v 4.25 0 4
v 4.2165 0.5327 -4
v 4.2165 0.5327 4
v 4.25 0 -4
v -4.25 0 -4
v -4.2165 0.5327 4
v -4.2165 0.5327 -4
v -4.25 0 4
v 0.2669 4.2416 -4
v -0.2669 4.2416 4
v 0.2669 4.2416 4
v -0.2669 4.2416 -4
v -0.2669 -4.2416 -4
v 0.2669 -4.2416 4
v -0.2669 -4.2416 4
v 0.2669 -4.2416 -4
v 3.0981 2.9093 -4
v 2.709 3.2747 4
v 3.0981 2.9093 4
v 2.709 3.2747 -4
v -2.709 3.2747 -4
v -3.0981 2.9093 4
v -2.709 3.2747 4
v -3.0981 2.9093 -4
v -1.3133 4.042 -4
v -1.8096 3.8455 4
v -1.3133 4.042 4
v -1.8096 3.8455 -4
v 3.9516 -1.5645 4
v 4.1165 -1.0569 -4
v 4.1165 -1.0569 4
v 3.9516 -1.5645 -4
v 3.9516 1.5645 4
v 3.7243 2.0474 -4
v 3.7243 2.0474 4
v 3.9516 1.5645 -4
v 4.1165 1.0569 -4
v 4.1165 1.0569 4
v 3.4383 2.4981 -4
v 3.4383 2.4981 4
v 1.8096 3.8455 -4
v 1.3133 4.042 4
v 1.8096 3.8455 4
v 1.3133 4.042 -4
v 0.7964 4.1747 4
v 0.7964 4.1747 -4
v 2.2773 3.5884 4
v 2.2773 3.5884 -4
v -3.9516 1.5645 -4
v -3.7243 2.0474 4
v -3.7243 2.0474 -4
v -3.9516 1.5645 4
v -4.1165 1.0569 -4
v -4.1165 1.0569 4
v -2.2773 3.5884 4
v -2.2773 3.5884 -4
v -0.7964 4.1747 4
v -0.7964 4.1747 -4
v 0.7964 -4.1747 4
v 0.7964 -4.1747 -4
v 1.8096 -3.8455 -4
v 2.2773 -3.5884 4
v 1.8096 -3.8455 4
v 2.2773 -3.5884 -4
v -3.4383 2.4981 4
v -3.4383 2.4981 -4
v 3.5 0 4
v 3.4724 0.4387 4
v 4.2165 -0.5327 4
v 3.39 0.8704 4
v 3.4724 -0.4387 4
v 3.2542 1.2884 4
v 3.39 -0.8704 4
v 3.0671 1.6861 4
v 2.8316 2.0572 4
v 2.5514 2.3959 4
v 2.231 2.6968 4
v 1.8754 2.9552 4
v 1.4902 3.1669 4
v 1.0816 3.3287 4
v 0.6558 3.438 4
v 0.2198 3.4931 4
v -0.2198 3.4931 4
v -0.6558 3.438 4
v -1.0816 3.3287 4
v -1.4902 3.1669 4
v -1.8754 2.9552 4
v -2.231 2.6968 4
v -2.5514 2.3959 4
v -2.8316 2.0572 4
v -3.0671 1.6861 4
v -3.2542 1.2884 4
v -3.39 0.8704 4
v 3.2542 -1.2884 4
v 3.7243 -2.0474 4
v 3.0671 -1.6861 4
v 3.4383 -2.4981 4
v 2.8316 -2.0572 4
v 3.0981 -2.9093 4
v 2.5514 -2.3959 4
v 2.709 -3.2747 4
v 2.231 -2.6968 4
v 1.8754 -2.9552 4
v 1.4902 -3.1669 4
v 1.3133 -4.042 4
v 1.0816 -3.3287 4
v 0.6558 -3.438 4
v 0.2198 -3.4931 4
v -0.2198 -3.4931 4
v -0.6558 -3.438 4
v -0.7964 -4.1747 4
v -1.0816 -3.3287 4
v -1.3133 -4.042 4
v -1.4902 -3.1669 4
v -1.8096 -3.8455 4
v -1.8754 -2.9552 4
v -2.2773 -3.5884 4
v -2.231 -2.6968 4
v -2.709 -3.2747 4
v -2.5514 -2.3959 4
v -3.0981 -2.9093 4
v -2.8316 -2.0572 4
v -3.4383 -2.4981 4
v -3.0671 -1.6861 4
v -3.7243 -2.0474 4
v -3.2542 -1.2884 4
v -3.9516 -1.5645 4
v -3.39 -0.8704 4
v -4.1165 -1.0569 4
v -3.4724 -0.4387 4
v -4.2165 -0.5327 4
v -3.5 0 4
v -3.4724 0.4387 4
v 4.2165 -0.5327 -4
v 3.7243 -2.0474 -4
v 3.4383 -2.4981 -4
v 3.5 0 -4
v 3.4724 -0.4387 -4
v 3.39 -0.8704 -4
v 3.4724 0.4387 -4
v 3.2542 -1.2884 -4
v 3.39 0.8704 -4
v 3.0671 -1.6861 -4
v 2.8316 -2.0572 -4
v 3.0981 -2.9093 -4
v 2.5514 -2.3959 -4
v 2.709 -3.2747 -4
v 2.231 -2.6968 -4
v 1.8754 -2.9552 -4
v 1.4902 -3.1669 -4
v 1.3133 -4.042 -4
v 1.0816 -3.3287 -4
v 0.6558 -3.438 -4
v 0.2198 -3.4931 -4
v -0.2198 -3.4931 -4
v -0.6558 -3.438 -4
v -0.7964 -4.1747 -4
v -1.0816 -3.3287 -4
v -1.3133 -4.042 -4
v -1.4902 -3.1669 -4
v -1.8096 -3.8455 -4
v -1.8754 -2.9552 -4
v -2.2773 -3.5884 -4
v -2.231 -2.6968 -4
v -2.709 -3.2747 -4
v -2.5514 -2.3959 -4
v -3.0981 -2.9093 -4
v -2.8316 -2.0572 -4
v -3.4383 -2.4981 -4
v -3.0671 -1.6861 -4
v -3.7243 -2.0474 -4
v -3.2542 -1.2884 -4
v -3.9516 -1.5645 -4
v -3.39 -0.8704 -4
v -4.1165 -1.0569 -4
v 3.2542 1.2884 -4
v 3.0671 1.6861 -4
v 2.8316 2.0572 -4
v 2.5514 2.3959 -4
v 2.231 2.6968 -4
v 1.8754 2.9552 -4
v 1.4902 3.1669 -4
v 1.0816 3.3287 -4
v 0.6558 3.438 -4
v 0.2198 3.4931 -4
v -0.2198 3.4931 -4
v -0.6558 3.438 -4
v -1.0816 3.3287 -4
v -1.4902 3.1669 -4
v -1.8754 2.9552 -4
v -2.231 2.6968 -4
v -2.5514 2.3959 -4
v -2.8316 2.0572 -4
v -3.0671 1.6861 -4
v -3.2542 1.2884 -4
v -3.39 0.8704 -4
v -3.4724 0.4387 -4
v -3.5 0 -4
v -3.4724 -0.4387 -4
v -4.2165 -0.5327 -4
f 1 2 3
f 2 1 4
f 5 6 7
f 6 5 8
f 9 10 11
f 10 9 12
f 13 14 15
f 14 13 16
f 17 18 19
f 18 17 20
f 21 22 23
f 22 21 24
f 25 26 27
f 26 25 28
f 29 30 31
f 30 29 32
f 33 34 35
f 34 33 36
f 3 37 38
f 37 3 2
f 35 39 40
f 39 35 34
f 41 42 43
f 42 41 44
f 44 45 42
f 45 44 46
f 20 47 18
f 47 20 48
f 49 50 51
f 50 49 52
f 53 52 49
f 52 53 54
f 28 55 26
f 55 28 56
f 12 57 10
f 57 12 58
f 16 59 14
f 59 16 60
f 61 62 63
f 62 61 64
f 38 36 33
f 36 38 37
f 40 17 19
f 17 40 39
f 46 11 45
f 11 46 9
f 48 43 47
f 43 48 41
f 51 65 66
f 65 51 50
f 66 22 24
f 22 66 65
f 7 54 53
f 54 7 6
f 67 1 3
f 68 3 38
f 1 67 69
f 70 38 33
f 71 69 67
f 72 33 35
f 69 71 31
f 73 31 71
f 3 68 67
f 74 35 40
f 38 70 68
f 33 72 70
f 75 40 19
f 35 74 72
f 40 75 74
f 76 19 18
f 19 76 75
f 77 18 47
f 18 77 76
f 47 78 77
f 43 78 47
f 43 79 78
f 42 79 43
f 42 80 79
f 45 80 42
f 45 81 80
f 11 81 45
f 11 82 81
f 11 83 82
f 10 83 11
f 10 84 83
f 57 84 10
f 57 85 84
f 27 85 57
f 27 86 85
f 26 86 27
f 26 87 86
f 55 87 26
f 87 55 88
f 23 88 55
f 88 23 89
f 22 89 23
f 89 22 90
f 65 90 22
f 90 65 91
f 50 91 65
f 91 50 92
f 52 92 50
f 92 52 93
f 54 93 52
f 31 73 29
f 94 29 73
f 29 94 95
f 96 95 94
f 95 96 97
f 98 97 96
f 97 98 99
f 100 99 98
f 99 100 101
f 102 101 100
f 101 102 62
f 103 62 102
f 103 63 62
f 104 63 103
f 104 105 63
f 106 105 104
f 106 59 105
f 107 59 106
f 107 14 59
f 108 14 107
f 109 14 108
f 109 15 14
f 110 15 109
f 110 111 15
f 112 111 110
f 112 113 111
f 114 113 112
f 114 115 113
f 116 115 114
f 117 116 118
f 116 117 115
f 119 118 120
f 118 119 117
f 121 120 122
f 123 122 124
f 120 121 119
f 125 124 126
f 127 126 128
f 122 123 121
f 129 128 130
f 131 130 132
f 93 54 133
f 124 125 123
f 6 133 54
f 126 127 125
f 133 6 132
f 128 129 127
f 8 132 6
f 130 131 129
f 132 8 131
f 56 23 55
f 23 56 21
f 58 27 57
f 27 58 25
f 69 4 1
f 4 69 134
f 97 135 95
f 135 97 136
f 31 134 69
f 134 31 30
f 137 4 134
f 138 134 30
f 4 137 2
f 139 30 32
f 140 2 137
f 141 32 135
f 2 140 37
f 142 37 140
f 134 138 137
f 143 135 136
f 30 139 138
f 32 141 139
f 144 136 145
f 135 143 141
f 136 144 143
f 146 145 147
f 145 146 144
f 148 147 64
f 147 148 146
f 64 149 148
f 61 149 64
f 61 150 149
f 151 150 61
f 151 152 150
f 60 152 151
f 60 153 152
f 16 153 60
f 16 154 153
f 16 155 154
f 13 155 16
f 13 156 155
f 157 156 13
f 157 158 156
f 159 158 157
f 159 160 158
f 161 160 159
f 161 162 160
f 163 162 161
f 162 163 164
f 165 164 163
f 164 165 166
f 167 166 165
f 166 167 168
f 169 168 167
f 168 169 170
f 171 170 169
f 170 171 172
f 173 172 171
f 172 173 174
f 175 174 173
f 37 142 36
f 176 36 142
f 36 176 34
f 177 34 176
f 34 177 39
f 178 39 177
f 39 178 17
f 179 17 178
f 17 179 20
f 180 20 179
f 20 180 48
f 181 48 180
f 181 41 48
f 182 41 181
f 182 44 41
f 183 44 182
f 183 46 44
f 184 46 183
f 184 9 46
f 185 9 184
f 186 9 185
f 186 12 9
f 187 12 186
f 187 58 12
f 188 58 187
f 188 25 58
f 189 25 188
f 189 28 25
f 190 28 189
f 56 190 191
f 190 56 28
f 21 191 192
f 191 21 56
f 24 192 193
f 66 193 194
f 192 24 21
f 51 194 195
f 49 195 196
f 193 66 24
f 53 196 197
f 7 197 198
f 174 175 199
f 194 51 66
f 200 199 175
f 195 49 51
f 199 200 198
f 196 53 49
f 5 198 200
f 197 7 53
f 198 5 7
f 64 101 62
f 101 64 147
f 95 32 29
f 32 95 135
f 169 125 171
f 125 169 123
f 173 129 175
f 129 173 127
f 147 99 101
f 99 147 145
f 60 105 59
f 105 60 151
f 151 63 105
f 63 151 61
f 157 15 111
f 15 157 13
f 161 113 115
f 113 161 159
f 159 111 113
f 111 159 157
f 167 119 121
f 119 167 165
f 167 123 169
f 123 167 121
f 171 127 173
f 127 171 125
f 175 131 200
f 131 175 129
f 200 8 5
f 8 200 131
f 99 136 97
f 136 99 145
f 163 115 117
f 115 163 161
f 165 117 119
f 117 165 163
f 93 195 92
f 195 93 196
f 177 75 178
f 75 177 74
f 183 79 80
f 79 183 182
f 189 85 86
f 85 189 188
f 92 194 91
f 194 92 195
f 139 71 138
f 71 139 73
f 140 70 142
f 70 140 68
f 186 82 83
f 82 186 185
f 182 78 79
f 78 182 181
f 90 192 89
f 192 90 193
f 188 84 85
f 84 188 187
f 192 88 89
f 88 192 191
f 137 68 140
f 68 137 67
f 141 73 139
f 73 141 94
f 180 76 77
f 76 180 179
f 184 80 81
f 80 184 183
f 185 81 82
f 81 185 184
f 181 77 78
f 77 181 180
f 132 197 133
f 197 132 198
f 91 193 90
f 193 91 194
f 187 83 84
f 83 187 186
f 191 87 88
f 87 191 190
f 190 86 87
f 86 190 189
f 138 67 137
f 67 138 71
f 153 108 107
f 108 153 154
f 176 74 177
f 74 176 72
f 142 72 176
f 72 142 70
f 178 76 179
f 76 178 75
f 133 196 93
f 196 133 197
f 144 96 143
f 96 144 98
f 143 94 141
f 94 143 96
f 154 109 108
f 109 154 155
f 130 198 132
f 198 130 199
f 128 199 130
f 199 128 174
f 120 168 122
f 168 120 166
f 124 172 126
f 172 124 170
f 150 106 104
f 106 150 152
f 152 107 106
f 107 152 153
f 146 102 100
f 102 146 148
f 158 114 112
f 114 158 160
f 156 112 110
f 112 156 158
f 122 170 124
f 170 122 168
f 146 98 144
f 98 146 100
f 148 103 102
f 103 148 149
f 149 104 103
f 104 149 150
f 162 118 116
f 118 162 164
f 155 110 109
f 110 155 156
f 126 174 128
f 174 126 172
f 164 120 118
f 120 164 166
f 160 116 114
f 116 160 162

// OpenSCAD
$fn = 50;


difference() {
	union() {
		translate(v = [0, 0, -4.0000000000]) {
			cylinder(h = 8, r = 4.2500000000);
		}
	}
	union() {
		translate(v = [0, 0, -100.0000000000]) {
			cylinder(h = 200, r = 3.5000000000);
		}
	}
}
